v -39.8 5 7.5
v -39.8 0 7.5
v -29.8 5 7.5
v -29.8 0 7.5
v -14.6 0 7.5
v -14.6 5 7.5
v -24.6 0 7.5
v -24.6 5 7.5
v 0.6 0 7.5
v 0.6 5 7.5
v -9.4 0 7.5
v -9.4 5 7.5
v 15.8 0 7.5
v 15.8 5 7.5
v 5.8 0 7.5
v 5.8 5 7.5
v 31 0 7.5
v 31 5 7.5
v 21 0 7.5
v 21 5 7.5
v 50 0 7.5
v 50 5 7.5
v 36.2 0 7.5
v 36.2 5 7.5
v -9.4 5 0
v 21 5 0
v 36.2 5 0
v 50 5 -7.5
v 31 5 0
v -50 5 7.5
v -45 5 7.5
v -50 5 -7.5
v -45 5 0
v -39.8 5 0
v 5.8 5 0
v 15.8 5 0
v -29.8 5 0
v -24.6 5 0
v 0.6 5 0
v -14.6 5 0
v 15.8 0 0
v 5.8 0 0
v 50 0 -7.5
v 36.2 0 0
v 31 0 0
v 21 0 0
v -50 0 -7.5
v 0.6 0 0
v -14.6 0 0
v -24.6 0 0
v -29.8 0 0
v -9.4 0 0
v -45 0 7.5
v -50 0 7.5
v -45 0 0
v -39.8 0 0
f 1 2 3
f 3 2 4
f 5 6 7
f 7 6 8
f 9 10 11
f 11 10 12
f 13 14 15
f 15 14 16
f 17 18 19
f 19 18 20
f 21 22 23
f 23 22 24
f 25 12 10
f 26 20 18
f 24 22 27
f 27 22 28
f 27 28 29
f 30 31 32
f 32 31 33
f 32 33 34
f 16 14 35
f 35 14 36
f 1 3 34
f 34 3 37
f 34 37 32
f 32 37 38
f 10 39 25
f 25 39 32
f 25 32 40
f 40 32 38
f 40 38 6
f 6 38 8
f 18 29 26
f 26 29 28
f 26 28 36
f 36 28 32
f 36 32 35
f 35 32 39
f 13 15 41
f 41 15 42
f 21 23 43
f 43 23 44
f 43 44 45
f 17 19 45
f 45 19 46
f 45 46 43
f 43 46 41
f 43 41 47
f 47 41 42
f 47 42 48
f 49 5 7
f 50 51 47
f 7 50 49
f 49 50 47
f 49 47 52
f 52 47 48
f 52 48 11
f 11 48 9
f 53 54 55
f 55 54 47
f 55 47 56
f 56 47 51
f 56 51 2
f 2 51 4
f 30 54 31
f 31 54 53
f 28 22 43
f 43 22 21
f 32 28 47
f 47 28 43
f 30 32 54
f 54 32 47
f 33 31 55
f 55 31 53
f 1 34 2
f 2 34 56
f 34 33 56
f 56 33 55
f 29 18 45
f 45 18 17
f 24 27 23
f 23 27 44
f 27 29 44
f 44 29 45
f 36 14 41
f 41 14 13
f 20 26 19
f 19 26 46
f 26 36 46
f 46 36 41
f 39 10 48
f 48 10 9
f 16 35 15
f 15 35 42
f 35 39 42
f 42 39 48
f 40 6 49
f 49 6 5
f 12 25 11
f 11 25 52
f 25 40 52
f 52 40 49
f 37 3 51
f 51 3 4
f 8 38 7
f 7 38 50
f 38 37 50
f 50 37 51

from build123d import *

# Parameters (mm, degrees)
SKETCH1_W           = 100
SKETCH1_H           = 15
BOSS_EXTRUDE1_DEPTH = 5
SKETCH2_W           = 5.2
SKETCH2_H           = 7.5
CUT_EXTRUDE1_DEPTH  = 5


with BuildPart() as part:
    # Sketch1 → Boss-Extrude1 (new body)
    with BuildSketch(Plane(origin=(0, 0, 0), x_dir=(1, 0, 0), z_dir=(0, 1, 0))):
        Rectangle(SKETCH1_W, SKETCH1_H)
    extrude(amount=BOSS_EXTRUDE1_DEPTH)

    # Sketch2 → Cut-Extrude1 (cut)
    with BuildSketch(Plane(origin=(0, 0, 0), x_dir=(1, 0, 0), z_dir=(0, 1, 0))):
        with Locations((-42.4, -3.75)):
            Rectangle(SKETCH2_W, SKETCH2_H)
        with Locations((-27.2, -3.75)):
            Rectangle(SKETCH2_W, SKETCH2_H)
        with Locations((-12, -3.75)):
            Rectangle(SKETCH2_W, SKETCH2_H)
        with Locations((3.2, -3.75)):
            Rectangle(SKETCH2_W, SKETCH2_H)
        with Locations((18.4, -3.75)):
            Rectangle(SKETCH2_W, SKETCH2_H)
        with Locations((33.6, -3.75)):
            Rectangle(SKETCH2_W, SKETCH2_H)
    extrude(amount=CUT_EXTRUDE1_DEPTH, mode=Mode.SUBTRACT)


solid = part.part
